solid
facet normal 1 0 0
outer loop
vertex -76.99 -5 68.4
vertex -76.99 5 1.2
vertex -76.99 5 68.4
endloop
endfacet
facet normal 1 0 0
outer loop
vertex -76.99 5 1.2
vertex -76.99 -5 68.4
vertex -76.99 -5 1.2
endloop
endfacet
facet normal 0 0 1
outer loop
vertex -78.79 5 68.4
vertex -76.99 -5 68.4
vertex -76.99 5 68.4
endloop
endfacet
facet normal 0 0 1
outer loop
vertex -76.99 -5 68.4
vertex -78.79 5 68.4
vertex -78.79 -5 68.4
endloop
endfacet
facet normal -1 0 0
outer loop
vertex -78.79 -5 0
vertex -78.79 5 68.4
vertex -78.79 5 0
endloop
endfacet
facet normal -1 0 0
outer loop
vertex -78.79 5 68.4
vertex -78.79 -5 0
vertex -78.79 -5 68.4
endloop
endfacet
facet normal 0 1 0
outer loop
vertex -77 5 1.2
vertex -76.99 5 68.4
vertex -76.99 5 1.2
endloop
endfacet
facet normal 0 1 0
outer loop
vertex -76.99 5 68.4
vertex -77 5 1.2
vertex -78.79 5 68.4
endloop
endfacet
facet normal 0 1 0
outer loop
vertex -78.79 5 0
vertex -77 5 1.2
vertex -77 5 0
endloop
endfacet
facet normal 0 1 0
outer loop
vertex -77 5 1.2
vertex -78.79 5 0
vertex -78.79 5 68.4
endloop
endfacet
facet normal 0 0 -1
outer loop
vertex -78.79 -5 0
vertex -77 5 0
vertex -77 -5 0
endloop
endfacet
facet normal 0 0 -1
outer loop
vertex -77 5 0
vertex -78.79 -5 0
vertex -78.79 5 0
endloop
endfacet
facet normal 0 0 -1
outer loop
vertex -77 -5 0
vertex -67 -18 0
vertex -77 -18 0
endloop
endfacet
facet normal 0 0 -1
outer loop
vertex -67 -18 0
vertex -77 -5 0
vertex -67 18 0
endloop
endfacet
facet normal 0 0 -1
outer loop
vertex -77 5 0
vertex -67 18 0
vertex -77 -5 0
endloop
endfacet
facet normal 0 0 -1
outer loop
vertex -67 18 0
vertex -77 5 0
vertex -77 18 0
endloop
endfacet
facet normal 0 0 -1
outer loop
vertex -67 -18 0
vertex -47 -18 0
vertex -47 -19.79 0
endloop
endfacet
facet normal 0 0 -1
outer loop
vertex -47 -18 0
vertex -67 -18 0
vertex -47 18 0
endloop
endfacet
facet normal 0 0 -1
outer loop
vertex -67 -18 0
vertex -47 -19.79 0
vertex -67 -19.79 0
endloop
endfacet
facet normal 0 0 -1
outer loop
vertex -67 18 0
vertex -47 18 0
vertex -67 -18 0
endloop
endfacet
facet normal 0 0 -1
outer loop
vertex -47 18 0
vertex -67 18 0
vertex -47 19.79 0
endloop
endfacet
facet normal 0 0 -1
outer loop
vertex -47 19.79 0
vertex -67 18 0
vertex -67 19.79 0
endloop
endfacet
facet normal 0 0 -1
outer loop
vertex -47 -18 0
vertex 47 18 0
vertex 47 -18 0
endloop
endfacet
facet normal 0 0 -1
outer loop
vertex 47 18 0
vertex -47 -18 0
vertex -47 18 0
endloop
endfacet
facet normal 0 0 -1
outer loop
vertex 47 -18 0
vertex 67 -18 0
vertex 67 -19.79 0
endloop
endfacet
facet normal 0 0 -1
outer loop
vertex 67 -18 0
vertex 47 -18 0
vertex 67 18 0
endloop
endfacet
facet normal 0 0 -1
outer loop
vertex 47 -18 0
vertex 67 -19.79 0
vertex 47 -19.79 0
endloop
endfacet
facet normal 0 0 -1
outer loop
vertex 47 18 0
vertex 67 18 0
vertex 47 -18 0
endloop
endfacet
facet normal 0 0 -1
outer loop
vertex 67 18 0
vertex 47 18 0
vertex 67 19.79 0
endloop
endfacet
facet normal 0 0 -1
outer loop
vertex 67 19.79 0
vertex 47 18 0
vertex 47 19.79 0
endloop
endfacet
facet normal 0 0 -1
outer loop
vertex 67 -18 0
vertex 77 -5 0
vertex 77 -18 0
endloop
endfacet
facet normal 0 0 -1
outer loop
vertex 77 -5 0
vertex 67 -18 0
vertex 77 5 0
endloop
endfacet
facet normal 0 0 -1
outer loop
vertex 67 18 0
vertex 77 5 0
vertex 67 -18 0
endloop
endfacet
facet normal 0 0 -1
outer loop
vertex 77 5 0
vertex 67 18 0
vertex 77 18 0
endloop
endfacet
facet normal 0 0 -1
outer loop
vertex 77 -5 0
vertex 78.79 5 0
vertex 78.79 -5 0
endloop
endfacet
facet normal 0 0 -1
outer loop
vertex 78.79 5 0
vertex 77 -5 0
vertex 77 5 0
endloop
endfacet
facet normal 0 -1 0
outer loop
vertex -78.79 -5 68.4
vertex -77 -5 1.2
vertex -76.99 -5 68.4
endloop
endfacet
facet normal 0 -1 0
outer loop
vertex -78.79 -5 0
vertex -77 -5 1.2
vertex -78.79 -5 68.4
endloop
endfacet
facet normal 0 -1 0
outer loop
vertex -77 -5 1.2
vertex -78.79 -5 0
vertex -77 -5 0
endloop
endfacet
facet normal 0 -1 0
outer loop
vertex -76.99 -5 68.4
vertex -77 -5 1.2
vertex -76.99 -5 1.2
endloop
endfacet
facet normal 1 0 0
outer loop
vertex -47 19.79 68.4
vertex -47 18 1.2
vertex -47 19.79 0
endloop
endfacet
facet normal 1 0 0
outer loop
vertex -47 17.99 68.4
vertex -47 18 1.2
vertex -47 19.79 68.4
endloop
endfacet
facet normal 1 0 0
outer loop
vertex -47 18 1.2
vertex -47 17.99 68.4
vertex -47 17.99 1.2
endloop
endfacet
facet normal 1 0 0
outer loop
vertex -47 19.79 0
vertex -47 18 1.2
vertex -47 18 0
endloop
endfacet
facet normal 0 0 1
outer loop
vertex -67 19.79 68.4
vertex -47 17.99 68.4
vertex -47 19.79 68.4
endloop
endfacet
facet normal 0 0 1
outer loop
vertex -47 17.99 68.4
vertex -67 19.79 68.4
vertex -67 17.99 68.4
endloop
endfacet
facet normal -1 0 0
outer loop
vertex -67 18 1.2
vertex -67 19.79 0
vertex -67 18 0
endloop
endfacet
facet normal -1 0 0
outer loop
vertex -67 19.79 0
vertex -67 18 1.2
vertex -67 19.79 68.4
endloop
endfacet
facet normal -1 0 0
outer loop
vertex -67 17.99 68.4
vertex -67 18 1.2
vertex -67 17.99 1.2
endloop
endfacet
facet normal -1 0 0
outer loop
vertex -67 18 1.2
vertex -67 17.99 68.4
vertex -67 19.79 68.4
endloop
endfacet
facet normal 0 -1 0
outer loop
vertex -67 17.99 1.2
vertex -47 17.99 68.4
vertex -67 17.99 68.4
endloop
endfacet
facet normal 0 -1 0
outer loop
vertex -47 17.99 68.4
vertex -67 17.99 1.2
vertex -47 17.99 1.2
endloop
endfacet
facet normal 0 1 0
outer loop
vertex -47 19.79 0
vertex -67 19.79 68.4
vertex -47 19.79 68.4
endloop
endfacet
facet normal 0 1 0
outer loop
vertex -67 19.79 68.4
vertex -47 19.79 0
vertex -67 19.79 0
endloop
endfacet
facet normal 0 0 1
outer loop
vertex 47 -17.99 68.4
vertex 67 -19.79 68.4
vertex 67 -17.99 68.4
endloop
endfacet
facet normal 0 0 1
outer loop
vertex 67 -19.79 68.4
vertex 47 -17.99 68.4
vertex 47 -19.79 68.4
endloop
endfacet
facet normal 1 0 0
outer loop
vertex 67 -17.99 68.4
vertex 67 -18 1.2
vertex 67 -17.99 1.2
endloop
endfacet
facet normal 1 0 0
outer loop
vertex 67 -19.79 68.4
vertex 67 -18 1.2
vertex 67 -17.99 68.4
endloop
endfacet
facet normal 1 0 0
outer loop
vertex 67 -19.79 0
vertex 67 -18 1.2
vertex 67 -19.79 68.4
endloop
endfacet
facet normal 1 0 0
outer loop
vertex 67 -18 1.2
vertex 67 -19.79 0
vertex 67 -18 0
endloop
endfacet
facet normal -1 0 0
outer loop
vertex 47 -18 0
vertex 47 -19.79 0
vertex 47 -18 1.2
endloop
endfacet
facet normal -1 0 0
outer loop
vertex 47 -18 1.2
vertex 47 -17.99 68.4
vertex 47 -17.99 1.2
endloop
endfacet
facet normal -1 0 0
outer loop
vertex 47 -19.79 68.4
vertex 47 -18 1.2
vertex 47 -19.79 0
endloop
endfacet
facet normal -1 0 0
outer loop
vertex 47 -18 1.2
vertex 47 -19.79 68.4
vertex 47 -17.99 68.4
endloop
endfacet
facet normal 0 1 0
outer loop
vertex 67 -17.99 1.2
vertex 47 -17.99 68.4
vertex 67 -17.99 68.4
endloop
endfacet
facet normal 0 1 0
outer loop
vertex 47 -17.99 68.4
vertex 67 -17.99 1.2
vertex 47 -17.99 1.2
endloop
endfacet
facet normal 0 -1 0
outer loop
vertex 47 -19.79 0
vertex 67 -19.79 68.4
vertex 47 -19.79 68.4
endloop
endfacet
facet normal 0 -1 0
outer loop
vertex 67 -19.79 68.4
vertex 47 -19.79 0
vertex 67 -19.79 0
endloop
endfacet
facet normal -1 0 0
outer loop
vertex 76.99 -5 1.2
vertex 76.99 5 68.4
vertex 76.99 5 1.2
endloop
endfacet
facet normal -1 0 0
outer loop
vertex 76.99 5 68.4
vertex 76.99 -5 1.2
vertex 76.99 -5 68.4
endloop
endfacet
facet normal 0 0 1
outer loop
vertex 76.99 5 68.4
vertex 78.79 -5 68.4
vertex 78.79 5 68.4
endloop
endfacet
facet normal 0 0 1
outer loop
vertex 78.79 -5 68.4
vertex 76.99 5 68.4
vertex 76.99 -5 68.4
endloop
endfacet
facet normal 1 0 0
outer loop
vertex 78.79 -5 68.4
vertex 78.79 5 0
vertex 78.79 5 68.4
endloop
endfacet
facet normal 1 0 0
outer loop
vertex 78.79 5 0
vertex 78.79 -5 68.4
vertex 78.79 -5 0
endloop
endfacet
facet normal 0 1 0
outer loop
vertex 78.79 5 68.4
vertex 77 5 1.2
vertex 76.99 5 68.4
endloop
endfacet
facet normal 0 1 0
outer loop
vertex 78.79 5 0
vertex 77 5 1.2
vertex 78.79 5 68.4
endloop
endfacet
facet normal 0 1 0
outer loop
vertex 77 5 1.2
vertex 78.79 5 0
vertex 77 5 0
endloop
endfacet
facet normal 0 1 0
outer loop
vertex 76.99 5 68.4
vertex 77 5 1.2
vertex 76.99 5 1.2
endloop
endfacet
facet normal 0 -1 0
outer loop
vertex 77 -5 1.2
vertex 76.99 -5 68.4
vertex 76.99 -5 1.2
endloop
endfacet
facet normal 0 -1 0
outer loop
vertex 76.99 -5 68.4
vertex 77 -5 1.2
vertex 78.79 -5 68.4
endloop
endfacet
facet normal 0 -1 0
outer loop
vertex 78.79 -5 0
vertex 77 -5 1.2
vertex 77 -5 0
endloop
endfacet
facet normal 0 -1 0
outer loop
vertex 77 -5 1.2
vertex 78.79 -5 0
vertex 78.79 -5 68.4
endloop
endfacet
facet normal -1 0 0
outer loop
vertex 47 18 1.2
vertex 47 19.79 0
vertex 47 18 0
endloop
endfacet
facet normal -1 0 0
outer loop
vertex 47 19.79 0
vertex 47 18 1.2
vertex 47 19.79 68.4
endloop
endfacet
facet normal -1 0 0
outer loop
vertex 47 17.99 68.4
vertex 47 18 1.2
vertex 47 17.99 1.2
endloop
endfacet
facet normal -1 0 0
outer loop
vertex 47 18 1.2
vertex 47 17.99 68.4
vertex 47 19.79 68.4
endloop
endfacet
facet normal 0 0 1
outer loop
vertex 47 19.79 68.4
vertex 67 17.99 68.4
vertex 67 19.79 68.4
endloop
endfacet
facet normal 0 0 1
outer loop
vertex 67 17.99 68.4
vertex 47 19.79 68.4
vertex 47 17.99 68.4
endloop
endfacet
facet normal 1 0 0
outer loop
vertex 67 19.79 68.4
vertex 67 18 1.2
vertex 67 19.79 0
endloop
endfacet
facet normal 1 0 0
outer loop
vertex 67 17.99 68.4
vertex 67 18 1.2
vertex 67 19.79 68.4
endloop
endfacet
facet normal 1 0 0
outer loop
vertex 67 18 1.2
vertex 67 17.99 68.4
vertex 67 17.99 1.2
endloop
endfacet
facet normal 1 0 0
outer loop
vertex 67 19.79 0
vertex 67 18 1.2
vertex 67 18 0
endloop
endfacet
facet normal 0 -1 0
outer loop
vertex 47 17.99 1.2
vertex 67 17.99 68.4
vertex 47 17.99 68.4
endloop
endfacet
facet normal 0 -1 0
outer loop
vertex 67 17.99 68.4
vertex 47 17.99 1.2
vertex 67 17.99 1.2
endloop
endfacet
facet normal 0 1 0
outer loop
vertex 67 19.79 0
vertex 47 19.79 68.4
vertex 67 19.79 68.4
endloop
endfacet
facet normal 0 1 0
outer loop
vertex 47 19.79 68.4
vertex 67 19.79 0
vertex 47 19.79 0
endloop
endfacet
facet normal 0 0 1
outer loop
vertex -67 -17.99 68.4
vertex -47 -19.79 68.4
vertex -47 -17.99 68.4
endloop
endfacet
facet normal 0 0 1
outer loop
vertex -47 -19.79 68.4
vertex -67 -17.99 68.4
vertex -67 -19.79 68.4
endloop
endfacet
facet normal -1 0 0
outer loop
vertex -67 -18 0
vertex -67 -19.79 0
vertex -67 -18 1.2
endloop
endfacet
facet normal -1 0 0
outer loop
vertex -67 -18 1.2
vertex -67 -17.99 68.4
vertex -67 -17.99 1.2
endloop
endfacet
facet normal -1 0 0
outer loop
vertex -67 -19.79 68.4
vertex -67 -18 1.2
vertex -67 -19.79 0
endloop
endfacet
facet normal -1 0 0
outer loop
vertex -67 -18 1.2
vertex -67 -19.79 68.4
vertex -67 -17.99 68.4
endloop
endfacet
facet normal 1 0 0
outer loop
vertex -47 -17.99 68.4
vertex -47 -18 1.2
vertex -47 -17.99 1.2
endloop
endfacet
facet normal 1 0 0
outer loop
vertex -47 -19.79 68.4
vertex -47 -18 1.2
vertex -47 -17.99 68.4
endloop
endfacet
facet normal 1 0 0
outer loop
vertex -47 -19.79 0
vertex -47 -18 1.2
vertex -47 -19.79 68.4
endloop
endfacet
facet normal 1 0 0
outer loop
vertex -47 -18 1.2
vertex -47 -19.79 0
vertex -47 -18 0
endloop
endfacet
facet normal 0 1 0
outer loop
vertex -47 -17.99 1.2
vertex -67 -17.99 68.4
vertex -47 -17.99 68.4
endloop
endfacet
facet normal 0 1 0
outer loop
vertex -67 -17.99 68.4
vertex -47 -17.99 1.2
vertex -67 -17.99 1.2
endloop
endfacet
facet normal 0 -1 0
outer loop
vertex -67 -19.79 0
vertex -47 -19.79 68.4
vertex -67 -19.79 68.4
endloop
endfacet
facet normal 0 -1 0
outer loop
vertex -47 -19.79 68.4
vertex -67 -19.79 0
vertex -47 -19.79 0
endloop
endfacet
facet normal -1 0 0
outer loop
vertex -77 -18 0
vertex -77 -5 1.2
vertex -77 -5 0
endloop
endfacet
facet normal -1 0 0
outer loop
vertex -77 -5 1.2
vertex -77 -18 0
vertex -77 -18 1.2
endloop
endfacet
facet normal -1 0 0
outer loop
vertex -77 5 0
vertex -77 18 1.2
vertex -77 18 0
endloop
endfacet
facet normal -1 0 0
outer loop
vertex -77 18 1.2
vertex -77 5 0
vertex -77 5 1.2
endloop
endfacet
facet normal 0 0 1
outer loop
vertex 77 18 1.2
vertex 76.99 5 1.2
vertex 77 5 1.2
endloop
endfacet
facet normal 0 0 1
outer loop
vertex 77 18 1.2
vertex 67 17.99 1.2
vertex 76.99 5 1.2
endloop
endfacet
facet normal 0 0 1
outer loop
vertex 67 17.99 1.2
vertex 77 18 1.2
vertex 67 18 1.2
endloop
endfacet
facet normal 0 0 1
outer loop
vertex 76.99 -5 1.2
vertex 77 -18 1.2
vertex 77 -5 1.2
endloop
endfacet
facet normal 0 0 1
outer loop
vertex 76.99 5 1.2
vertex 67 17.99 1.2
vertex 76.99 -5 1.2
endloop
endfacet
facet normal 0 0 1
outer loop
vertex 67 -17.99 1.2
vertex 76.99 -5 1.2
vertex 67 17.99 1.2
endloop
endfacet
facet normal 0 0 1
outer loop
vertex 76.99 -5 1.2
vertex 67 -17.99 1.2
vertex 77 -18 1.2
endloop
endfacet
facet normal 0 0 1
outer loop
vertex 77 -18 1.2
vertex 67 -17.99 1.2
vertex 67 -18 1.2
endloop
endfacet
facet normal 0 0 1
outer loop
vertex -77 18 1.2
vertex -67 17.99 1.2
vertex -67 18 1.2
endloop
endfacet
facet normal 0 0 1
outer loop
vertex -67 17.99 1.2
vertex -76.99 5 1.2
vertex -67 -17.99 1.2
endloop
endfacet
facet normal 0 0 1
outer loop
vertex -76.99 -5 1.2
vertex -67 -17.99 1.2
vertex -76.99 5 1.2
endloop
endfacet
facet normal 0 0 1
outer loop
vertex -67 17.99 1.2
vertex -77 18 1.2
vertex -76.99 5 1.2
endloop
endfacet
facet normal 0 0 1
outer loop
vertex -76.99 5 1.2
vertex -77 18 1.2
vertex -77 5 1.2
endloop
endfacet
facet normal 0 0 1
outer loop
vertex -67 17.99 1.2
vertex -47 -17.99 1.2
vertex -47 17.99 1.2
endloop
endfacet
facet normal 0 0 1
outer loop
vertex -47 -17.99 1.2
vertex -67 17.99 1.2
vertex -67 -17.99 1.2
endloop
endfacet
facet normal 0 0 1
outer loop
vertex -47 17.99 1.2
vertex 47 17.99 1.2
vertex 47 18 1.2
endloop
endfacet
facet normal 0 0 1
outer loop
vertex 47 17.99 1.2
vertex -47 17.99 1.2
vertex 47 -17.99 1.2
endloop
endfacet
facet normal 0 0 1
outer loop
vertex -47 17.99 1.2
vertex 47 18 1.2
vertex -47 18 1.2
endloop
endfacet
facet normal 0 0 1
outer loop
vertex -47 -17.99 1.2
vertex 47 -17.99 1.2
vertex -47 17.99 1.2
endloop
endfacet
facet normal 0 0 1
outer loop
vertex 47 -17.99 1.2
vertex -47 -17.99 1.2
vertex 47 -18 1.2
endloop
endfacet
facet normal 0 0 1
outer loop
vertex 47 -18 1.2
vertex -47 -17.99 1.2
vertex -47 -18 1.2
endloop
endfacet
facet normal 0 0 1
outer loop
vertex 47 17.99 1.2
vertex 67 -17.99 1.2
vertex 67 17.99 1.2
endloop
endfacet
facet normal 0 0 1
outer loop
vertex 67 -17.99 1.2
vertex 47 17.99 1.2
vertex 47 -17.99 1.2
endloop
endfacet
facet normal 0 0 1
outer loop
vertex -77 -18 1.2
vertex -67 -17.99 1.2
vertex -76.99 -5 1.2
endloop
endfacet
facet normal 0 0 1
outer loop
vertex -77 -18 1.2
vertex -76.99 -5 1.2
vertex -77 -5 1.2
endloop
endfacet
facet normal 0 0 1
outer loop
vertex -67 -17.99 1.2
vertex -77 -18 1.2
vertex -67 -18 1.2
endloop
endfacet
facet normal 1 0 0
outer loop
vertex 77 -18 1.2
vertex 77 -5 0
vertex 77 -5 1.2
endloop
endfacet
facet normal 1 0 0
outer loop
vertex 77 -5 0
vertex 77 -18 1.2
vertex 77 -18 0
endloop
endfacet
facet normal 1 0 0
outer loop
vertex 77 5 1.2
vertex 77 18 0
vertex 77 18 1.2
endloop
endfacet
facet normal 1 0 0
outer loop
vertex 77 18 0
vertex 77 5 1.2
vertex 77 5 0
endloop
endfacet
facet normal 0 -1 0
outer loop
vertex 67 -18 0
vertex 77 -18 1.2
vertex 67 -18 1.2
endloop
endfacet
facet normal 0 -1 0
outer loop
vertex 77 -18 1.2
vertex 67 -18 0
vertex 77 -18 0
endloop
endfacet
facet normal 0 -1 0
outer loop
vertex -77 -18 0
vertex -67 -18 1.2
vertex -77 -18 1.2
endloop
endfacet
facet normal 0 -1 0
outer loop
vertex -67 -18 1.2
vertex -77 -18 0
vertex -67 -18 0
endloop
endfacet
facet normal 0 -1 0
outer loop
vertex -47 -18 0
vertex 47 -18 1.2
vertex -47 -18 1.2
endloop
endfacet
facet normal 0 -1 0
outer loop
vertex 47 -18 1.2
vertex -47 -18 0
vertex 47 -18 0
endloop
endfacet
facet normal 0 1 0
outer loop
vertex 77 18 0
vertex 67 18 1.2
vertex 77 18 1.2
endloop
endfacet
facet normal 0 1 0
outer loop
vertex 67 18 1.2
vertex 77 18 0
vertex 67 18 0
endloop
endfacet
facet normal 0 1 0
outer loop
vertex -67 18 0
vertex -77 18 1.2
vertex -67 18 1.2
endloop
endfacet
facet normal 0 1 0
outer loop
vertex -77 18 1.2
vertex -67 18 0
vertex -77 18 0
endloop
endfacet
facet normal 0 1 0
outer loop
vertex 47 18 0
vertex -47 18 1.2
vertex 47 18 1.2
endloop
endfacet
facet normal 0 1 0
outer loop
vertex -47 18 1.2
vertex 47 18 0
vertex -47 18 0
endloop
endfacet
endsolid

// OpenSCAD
// -*- mode: SCAD ; c-file-style: "ellemtel" ; coding: utf-8 -*-
//
// correctly sized simple shape to stack four picture 135 type film strips
//
// © 2018 Roland Sieker <ospalh@gmail.com>
// Licence: CC-BY-SA 4.0


// … to preview. You will get all parts when you click “Create Thing”.
part = "stack"; // [stack: Stapler, lid: Deckel]

// Set this to “render” and click on “Create Thing” when done with the setup.
preview = 1; // [0:render, 1:preview]
// not needed

ll = 154;  // “official” length is 152 mm, or 4×8 holes × 4.75 mm pitch
lld = 148;
wst = 36; // 35 mm + clearance
wld = 34; // Make it fit between the plates without problems
h = 66; // I have a lot of film strips i want to stack
epl = 10;
spl = 20;
spo = 10;

/* [Hidden] */

// Done with the customizer

// *******************************************************
// Extra parameters. These can be changed reasonably safely.


w = 1.8;  // Wall width
p = 1.2;  // Bottom, top plate height
c = 0.4;  // Clearance
angle = 60; // Overhangs much below 60° are a problem for me

// *******************************************************
// Some shortcuts. These shouldn’t be changed

tau = 2 * PI;  // π is still wrong. τ = ⌀ ÷ r

xy_factor = 1/tan(angle);
// To get from a height to a horizontal width inclined correctly
z_factor = tan(angle);  // The other way around

he = h + 2*p;
spo2 = ll/2 - spo - spl;

some_distance = 50;
ms = 0.01;  // Muggeseggele.

// fn for differently sized objects and fs, fa; all for preview or rendering.
pna = 40;
pnb = 15;
pa = 5;
ps = 1;
rna = 180;
rnb = 30;
ra = 1;
rs = 0.1;
function na() = (preview) ? pna : rna;
function nb() = (preview) ? pnb : rnb;
$fs = (preview) ? ps : rs;
$fa = (preview) ? pa : ra;

// *******************************************************
// End setup



// *******************************************************
// Generate the parts

print_part();
// preview_parts();
// stack_parts();



module print_part()
{
   if ("stack" == part)
   {
      stack();
   }
   if ("lid" == part)
   {
      lid();
   }
}

module preview_parts()
{
   stack();
   translate([0, some_distance, 0])
   {
      lid();
   }
}

module stack_parts()
{
   // intersection()
   {
      color("yellow")
      {
         stack();
      }
      translate([0,0, 3*p])
      {
         color("red")
         {
            lid();
         }
      }
   }
}

// *******************************************************
// Code for the parts themselves

module stack()
{
   translate([0,0,p/2])
   {
      cube([ll, wst, p], center=true);
   }
   plates();
}


module lid()
{
   translate([0,0,p/2])
   {
      cube([lld, wld, p], center=true);
   }
}


module plates()
{
   end_plate();
   side_plate();
   rotate(180)
   {
      side_plate();
   }
   mirror()
   {
      end_plate();
      side_plate();
      rotate(180)
      {
         side_plate();
      }
   }
}

module end_plate()
{
   translate([ll/2-ms , -epl/2,0])
   {
      cube([w, epl, he]);
   }
}

module side_plate()
{
   translate([spo2, wst/2-ms,0])
   {
      cube([spl, w, he]);
   }
}
